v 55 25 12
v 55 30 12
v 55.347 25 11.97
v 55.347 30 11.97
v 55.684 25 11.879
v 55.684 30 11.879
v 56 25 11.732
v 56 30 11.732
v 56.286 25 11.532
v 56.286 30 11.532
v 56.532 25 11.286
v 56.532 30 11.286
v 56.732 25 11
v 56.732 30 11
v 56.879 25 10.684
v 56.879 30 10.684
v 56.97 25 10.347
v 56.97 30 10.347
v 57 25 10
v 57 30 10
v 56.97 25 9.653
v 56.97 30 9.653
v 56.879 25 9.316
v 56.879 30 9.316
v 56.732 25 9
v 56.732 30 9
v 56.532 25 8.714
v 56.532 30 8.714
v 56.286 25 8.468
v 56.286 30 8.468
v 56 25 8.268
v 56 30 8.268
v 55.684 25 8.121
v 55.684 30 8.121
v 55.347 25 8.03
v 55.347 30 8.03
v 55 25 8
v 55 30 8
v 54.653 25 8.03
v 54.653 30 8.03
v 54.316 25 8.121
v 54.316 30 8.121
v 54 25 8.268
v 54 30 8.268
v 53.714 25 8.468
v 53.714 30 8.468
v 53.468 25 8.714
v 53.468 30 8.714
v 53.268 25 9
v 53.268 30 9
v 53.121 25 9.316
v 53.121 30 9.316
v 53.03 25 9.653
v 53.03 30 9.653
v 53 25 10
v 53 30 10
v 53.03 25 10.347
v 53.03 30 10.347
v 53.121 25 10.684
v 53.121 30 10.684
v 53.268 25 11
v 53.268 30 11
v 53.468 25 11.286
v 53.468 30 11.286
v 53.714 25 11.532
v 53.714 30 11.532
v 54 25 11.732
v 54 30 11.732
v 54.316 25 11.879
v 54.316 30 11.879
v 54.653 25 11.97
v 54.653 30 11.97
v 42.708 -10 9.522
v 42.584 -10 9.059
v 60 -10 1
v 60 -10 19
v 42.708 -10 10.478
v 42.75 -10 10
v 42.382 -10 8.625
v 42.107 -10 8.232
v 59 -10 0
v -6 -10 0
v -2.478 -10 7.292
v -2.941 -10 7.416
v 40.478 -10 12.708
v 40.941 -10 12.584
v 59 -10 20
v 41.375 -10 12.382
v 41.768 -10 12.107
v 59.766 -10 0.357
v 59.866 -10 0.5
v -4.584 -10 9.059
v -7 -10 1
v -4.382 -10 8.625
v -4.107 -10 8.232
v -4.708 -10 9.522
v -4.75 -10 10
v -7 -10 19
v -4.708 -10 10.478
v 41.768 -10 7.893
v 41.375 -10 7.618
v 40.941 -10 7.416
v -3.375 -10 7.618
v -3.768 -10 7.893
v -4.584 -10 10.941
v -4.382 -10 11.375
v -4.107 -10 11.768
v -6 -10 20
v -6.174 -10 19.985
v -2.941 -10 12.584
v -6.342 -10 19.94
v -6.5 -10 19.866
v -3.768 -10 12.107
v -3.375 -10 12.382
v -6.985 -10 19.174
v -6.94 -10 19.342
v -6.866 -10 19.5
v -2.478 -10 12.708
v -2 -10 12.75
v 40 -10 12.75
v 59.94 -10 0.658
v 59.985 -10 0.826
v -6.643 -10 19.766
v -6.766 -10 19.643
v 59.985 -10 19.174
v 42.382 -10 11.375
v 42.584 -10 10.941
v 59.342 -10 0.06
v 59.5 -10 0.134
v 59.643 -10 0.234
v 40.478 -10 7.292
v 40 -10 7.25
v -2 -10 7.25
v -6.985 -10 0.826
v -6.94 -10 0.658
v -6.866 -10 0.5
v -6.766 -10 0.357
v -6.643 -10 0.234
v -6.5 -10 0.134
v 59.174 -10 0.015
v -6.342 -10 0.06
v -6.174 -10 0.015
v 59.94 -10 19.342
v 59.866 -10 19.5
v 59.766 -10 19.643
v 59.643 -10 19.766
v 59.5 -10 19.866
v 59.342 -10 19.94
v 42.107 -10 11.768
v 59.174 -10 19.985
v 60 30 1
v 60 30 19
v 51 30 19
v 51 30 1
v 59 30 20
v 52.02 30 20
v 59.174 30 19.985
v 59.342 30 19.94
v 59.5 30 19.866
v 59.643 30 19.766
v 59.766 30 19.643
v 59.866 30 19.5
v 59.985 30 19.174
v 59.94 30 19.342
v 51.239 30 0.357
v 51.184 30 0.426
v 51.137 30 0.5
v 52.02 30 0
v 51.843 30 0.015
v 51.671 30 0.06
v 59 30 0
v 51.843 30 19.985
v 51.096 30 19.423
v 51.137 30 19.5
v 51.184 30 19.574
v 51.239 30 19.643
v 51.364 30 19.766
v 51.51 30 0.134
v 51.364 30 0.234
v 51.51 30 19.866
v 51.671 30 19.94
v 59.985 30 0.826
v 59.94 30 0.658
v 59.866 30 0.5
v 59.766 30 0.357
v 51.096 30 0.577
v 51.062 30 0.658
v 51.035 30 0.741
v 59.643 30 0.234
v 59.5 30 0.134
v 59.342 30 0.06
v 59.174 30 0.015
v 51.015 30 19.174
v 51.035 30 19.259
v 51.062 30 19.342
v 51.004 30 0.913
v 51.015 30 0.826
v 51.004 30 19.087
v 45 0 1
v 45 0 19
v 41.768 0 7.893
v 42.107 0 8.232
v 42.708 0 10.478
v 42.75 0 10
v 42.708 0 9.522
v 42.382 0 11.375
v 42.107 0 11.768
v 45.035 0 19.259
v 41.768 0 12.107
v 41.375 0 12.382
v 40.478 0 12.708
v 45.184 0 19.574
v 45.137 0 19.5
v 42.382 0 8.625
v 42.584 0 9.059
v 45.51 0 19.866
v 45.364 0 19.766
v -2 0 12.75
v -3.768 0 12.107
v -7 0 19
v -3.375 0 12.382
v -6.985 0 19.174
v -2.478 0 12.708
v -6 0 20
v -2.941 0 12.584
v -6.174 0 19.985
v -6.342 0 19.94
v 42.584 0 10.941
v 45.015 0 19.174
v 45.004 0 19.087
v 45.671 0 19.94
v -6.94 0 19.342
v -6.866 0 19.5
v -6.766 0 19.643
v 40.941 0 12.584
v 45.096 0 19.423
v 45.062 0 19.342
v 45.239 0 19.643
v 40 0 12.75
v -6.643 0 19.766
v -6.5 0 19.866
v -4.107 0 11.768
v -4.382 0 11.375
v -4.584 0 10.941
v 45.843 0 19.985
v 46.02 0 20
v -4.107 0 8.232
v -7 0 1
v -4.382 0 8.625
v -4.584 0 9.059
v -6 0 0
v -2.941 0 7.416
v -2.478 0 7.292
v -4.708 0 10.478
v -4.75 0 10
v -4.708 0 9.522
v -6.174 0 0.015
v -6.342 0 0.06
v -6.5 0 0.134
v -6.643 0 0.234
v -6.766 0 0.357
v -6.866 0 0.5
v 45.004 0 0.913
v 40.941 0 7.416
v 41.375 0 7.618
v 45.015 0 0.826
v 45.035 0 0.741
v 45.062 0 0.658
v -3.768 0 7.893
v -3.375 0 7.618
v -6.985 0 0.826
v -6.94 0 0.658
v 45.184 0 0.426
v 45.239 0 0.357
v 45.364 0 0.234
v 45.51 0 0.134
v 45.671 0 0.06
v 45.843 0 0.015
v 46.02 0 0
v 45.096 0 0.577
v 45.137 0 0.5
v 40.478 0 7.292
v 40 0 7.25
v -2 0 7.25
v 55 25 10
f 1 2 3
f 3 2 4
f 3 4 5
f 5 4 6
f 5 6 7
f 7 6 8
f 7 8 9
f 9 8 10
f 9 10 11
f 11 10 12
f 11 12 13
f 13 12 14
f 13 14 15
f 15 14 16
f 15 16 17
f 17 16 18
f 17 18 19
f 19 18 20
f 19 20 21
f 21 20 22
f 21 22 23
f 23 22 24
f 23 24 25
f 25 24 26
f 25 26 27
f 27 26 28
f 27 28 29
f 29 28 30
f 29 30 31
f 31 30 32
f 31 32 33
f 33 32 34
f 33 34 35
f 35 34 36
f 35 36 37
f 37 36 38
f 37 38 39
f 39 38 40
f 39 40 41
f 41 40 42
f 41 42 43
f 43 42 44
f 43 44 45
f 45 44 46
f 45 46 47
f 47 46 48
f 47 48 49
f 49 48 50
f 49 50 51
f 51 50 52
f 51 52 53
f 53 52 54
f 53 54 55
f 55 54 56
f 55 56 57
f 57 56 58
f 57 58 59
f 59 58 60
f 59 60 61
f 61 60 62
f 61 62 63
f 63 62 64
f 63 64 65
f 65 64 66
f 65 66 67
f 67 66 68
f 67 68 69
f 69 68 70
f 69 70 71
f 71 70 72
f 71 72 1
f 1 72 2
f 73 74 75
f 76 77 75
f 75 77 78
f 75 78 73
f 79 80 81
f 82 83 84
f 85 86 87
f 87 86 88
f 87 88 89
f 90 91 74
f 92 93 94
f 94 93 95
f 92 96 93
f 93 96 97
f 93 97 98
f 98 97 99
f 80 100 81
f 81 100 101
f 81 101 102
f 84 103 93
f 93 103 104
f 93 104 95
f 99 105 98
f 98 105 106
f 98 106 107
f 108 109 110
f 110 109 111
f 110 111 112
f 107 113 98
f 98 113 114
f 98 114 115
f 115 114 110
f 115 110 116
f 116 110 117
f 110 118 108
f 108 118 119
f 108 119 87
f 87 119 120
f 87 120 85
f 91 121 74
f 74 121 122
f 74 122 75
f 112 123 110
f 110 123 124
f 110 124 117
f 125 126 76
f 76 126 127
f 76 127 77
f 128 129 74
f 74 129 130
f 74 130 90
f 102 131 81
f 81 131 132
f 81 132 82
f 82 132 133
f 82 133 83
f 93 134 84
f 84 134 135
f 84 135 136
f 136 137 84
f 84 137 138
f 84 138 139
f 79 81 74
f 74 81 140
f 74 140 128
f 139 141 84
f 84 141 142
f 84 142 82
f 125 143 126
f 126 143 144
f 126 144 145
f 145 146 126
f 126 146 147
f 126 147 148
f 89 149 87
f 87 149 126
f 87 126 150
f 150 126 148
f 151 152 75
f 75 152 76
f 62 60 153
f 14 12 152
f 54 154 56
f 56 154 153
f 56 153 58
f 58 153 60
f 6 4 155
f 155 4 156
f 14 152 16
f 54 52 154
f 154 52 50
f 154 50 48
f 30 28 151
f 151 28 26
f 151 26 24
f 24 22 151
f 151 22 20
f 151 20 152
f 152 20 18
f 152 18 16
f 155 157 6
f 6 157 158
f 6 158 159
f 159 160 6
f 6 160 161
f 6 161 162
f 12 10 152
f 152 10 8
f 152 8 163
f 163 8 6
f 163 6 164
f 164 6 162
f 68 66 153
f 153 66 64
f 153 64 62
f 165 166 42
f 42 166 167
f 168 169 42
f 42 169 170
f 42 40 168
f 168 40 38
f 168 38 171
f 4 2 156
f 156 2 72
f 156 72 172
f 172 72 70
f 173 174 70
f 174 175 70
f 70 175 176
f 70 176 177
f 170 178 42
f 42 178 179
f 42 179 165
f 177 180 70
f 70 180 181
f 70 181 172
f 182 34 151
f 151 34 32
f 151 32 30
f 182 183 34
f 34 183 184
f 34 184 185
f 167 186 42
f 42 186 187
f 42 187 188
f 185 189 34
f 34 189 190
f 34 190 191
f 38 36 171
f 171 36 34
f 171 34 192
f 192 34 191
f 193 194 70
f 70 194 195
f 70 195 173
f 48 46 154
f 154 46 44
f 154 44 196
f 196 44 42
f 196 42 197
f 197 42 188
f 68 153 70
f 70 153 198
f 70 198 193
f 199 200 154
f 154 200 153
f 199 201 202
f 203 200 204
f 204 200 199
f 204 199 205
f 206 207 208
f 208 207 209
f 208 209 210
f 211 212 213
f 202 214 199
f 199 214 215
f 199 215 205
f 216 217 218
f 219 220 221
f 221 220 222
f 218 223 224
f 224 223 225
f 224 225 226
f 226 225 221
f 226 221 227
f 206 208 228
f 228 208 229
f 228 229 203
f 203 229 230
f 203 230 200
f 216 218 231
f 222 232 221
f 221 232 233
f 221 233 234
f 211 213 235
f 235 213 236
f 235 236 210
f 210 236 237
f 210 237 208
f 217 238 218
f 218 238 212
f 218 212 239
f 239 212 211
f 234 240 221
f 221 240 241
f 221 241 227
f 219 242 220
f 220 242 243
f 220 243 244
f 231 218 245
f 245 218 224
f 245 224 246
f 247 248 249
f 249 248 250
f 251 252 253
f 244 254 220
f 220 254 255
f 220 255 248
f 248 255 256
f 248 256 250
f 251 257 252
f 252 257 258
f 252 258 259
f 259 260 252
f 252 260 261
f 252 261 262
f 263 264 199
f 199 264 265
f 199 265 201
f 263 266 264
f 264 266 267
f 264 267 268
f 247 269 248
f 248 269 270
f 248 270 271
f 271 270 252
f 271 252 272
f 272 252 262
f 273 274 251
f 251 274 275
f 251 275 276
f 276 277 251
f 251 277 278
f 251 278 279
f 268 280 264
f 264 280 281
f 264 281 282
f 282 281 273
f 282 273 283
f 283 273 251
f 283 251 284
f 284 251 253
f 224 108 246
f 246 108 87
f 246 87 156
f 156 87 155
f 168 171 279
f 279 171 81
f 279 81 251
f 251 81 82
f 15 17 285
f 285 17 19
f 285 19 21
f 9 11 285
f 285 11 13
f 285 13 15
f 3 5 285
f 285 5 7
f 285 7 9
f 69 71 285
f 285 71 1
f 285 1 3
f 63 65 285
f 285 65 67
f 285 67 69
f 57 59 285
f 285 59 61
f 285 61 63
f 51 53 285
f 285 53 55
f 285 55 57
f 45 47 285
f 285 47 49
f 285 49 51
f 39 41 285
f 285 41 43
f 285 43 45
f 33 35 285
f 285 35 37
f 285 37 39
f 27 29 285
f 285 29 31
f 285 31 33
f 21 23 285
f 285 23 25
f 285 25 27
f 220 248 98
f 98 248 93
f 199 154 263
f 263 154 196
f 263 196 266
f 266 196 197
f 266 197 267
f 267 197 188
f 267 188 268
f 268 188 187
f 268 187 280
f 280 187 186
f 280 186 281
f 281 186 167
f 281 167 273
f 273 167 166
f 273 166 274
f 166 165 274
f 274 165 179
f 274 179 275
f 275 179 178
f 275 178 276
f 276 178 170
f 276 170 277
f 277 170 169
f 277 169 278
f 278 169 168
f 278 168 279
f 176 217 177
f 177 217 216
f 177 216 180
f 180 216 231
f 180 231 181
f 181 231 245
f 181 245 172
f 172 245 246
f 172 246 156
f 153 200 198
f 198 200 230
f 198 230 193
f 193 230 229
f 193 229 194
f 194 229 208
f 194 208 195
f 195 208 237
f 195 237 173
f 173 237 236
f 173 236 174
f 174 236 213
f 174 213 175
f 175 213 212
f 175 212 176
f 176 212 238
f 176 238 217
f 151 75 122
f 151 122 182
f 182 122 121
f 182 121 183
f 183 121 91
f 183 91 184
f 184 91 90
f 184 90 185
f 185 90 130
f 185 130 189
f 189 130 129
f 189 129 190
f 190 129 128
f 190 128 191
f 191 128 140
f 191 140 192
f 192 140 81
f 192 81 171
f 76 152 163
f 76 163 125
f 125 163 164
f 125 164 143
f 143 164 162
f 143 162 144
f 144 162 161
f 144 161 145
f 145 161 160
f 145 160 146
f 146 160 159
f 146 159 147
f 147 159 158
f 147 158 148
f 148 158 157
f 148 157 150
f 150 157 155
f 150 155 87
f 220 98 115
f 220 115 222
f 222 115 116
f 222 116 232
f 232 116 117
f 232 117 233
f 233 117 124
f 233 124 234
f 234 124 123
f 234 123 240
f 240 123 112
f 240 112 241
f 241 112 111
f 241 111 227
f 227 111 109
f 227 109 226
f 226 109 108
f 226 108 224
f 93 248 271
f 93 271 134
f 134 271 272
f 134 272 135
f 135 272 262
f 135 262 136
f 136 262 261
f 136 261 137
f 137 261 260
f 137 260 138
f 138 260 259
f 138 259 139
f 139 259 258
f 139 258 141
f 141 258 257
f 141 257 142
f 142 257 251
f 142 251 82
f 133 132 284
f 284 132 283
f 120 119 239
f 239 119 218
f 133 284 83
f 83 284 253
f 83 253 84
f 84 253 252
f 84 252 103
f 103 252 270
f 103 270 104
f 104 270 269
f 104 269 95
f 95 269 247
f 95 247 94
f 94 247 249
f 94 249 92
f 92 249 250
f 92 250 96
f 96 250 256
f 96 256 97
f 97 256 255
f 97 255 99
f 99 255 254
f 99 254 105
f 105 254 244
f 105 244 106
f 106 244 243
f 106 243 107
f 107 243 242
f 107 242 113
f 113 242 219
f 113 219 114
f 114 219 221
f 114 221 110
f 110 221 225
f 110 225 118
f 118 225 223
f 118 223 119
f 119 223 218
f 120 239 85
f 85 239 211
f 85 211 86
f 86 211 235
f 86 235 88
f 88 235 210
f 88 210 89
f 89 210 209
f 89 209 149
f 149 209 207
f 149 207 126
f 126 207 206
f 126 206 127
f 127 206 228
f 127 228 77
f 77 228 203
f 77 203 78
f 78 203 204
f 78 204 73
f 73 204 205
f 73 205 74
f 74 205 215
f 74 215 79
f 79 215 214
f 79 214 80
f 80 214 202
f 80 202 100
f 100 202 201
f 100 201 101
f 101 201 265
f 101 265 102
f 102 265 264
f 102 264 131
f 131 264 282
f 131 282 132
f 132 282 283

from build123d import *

# Parameters (mm, degrees)
EXTRUDE_1_DEPTH     = 20
SKETCH_2_R          = 2
SKETCH_2_R_2        = 2.75
CUT_EXTRUDE_1_DEPTH = 75.833147735
EXTRUDE_START       = -35
SKETCH_3_R          = 2
EXTRUDE_2_DEPTH     = 35
SKETCH_4_W          = 7
SKETCH_4_H          = 20
EXTRUDE_3_DEPTH     = 10
FILLET_2_R          = 1
CUT_EXTRUDE_2_DEPTH = 71


with BuildPart() as part:
    # ｽｹｯﾁ1 → ﾎﾞｽ - 押し出し1 (new body)
    with BuildSketch(Plane.XY):
        Polygon((0, 0), (45, 0), (51, 30), (60, 30), (60, -10), (0, -10), align=None)
    extrude(amount=EXTRUDE_1_DEPTH)

    # ｽｹｯﾁ2 → ｶｯﾄ - 押し出し1 (cut, through all)
    with BuildSketch(Plane(origin=(0, 30, 0), x_dir=(1, 0, 0), z_dir=(0, 1, 0))):
        with Locations(Location((55, -10, 0), (0, 0, 270))):
            Circle(SKETCH_2_R)
        with Locations(Location((3, -10, 0), (0, 0, 270))):
            Circle(SKETCH_2_R_2)
    extrude(amount=-CUT_EXTRUDE_1_DEPTH, mode=Mode.SUBTRACT)

    # ｽｹｯﾁ3 → ﾎﾞｽ - 押し出し2 (add)
    with BuildSketch(Plane.XZ.offset(10).offset(EXTRUDE_START)):
        with Locations(Location((55, 10, 0), (0, 0, 90))):
            Circle(SKETCH_3_R)
    extrude(amount=EXTRUDE_2_DEPTH)

    # ｽｹｯﾁ4 → ﾎﾞｽ - 押し出し3 (add)
    with BuildSketch(Plane(origin=(0, 0, 0), x_dir=(1, 0, 0), z_dir=(0, 1, 0))):
        with Locations((-3.5, -10)):
            Rectangle(SKETCH_4_W, SKETCH_4_H)
    extrude(amount=-EXTRUDE_3_DEPTH)

    # ﾌｨﾚｯﾄ2
    fillet_2_edges = [part.edges().sort_by_distance(p)[0] for p in [
        (60, 10, 20),
        (48, 15, 20),
        (-7, -5, 20),
        (-7, -5, 0),
        (48, 15, 0),
        (60, 10, 0),
    ]]
    fillet(fillet_2_edges, radius=FILLET_2_R)

    # ｽｹｯﾁ5 → ｶｯﾄ - 押し出し2 (cut, through all)
    with BuildSketch(Plane(origin=(0, 0, 0), x_dir=(1, 0, 0), z_dir=(0, 1, 0))):
        with BuildLine():
            Line((-2, -7.25), (40, -7.25))
            ThreePointArc((40, -7.25), (42.75, -10), (40, -12.75))
            Line((40, -12.75), (-2, -12.75))
            ThreePointArc((-2, -12.75), (-4.75, -10), (-2, -7.25))
        make_face()
    extrude(amount=-CUT_EXTRUDE_2_DEPTH, mode=Mode.SUBTRACT)


solid = part.part
